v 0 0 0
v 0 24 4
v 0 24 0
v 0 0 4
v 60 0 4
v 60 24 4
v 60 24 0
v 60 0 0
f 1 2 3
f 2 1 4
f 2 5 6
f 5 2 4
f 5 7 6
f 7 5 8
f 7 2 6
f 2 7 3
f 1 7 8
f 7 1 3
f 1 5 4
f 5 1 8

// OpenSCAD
module rectangular_plate(width, height, depth, hole_diameter, hole_x_offset, hole_y_offset) {
  difference() {
    cube([width, height, depth]);
    translate([hole_x_offset, hole_y_offset, -0.1])
    cylinder(h = depth + 0.2, r = hole_diameter / 2, $fn = 50);
    translate([width - hole_x_offset, hole_y_offset, -0.1])
    cylinder(h = depth + 0.2, r = hole_diameter / 2, $fn = 50);
  }
}

rectangular_plate(60, 24, 4, 4, -15, -0);
